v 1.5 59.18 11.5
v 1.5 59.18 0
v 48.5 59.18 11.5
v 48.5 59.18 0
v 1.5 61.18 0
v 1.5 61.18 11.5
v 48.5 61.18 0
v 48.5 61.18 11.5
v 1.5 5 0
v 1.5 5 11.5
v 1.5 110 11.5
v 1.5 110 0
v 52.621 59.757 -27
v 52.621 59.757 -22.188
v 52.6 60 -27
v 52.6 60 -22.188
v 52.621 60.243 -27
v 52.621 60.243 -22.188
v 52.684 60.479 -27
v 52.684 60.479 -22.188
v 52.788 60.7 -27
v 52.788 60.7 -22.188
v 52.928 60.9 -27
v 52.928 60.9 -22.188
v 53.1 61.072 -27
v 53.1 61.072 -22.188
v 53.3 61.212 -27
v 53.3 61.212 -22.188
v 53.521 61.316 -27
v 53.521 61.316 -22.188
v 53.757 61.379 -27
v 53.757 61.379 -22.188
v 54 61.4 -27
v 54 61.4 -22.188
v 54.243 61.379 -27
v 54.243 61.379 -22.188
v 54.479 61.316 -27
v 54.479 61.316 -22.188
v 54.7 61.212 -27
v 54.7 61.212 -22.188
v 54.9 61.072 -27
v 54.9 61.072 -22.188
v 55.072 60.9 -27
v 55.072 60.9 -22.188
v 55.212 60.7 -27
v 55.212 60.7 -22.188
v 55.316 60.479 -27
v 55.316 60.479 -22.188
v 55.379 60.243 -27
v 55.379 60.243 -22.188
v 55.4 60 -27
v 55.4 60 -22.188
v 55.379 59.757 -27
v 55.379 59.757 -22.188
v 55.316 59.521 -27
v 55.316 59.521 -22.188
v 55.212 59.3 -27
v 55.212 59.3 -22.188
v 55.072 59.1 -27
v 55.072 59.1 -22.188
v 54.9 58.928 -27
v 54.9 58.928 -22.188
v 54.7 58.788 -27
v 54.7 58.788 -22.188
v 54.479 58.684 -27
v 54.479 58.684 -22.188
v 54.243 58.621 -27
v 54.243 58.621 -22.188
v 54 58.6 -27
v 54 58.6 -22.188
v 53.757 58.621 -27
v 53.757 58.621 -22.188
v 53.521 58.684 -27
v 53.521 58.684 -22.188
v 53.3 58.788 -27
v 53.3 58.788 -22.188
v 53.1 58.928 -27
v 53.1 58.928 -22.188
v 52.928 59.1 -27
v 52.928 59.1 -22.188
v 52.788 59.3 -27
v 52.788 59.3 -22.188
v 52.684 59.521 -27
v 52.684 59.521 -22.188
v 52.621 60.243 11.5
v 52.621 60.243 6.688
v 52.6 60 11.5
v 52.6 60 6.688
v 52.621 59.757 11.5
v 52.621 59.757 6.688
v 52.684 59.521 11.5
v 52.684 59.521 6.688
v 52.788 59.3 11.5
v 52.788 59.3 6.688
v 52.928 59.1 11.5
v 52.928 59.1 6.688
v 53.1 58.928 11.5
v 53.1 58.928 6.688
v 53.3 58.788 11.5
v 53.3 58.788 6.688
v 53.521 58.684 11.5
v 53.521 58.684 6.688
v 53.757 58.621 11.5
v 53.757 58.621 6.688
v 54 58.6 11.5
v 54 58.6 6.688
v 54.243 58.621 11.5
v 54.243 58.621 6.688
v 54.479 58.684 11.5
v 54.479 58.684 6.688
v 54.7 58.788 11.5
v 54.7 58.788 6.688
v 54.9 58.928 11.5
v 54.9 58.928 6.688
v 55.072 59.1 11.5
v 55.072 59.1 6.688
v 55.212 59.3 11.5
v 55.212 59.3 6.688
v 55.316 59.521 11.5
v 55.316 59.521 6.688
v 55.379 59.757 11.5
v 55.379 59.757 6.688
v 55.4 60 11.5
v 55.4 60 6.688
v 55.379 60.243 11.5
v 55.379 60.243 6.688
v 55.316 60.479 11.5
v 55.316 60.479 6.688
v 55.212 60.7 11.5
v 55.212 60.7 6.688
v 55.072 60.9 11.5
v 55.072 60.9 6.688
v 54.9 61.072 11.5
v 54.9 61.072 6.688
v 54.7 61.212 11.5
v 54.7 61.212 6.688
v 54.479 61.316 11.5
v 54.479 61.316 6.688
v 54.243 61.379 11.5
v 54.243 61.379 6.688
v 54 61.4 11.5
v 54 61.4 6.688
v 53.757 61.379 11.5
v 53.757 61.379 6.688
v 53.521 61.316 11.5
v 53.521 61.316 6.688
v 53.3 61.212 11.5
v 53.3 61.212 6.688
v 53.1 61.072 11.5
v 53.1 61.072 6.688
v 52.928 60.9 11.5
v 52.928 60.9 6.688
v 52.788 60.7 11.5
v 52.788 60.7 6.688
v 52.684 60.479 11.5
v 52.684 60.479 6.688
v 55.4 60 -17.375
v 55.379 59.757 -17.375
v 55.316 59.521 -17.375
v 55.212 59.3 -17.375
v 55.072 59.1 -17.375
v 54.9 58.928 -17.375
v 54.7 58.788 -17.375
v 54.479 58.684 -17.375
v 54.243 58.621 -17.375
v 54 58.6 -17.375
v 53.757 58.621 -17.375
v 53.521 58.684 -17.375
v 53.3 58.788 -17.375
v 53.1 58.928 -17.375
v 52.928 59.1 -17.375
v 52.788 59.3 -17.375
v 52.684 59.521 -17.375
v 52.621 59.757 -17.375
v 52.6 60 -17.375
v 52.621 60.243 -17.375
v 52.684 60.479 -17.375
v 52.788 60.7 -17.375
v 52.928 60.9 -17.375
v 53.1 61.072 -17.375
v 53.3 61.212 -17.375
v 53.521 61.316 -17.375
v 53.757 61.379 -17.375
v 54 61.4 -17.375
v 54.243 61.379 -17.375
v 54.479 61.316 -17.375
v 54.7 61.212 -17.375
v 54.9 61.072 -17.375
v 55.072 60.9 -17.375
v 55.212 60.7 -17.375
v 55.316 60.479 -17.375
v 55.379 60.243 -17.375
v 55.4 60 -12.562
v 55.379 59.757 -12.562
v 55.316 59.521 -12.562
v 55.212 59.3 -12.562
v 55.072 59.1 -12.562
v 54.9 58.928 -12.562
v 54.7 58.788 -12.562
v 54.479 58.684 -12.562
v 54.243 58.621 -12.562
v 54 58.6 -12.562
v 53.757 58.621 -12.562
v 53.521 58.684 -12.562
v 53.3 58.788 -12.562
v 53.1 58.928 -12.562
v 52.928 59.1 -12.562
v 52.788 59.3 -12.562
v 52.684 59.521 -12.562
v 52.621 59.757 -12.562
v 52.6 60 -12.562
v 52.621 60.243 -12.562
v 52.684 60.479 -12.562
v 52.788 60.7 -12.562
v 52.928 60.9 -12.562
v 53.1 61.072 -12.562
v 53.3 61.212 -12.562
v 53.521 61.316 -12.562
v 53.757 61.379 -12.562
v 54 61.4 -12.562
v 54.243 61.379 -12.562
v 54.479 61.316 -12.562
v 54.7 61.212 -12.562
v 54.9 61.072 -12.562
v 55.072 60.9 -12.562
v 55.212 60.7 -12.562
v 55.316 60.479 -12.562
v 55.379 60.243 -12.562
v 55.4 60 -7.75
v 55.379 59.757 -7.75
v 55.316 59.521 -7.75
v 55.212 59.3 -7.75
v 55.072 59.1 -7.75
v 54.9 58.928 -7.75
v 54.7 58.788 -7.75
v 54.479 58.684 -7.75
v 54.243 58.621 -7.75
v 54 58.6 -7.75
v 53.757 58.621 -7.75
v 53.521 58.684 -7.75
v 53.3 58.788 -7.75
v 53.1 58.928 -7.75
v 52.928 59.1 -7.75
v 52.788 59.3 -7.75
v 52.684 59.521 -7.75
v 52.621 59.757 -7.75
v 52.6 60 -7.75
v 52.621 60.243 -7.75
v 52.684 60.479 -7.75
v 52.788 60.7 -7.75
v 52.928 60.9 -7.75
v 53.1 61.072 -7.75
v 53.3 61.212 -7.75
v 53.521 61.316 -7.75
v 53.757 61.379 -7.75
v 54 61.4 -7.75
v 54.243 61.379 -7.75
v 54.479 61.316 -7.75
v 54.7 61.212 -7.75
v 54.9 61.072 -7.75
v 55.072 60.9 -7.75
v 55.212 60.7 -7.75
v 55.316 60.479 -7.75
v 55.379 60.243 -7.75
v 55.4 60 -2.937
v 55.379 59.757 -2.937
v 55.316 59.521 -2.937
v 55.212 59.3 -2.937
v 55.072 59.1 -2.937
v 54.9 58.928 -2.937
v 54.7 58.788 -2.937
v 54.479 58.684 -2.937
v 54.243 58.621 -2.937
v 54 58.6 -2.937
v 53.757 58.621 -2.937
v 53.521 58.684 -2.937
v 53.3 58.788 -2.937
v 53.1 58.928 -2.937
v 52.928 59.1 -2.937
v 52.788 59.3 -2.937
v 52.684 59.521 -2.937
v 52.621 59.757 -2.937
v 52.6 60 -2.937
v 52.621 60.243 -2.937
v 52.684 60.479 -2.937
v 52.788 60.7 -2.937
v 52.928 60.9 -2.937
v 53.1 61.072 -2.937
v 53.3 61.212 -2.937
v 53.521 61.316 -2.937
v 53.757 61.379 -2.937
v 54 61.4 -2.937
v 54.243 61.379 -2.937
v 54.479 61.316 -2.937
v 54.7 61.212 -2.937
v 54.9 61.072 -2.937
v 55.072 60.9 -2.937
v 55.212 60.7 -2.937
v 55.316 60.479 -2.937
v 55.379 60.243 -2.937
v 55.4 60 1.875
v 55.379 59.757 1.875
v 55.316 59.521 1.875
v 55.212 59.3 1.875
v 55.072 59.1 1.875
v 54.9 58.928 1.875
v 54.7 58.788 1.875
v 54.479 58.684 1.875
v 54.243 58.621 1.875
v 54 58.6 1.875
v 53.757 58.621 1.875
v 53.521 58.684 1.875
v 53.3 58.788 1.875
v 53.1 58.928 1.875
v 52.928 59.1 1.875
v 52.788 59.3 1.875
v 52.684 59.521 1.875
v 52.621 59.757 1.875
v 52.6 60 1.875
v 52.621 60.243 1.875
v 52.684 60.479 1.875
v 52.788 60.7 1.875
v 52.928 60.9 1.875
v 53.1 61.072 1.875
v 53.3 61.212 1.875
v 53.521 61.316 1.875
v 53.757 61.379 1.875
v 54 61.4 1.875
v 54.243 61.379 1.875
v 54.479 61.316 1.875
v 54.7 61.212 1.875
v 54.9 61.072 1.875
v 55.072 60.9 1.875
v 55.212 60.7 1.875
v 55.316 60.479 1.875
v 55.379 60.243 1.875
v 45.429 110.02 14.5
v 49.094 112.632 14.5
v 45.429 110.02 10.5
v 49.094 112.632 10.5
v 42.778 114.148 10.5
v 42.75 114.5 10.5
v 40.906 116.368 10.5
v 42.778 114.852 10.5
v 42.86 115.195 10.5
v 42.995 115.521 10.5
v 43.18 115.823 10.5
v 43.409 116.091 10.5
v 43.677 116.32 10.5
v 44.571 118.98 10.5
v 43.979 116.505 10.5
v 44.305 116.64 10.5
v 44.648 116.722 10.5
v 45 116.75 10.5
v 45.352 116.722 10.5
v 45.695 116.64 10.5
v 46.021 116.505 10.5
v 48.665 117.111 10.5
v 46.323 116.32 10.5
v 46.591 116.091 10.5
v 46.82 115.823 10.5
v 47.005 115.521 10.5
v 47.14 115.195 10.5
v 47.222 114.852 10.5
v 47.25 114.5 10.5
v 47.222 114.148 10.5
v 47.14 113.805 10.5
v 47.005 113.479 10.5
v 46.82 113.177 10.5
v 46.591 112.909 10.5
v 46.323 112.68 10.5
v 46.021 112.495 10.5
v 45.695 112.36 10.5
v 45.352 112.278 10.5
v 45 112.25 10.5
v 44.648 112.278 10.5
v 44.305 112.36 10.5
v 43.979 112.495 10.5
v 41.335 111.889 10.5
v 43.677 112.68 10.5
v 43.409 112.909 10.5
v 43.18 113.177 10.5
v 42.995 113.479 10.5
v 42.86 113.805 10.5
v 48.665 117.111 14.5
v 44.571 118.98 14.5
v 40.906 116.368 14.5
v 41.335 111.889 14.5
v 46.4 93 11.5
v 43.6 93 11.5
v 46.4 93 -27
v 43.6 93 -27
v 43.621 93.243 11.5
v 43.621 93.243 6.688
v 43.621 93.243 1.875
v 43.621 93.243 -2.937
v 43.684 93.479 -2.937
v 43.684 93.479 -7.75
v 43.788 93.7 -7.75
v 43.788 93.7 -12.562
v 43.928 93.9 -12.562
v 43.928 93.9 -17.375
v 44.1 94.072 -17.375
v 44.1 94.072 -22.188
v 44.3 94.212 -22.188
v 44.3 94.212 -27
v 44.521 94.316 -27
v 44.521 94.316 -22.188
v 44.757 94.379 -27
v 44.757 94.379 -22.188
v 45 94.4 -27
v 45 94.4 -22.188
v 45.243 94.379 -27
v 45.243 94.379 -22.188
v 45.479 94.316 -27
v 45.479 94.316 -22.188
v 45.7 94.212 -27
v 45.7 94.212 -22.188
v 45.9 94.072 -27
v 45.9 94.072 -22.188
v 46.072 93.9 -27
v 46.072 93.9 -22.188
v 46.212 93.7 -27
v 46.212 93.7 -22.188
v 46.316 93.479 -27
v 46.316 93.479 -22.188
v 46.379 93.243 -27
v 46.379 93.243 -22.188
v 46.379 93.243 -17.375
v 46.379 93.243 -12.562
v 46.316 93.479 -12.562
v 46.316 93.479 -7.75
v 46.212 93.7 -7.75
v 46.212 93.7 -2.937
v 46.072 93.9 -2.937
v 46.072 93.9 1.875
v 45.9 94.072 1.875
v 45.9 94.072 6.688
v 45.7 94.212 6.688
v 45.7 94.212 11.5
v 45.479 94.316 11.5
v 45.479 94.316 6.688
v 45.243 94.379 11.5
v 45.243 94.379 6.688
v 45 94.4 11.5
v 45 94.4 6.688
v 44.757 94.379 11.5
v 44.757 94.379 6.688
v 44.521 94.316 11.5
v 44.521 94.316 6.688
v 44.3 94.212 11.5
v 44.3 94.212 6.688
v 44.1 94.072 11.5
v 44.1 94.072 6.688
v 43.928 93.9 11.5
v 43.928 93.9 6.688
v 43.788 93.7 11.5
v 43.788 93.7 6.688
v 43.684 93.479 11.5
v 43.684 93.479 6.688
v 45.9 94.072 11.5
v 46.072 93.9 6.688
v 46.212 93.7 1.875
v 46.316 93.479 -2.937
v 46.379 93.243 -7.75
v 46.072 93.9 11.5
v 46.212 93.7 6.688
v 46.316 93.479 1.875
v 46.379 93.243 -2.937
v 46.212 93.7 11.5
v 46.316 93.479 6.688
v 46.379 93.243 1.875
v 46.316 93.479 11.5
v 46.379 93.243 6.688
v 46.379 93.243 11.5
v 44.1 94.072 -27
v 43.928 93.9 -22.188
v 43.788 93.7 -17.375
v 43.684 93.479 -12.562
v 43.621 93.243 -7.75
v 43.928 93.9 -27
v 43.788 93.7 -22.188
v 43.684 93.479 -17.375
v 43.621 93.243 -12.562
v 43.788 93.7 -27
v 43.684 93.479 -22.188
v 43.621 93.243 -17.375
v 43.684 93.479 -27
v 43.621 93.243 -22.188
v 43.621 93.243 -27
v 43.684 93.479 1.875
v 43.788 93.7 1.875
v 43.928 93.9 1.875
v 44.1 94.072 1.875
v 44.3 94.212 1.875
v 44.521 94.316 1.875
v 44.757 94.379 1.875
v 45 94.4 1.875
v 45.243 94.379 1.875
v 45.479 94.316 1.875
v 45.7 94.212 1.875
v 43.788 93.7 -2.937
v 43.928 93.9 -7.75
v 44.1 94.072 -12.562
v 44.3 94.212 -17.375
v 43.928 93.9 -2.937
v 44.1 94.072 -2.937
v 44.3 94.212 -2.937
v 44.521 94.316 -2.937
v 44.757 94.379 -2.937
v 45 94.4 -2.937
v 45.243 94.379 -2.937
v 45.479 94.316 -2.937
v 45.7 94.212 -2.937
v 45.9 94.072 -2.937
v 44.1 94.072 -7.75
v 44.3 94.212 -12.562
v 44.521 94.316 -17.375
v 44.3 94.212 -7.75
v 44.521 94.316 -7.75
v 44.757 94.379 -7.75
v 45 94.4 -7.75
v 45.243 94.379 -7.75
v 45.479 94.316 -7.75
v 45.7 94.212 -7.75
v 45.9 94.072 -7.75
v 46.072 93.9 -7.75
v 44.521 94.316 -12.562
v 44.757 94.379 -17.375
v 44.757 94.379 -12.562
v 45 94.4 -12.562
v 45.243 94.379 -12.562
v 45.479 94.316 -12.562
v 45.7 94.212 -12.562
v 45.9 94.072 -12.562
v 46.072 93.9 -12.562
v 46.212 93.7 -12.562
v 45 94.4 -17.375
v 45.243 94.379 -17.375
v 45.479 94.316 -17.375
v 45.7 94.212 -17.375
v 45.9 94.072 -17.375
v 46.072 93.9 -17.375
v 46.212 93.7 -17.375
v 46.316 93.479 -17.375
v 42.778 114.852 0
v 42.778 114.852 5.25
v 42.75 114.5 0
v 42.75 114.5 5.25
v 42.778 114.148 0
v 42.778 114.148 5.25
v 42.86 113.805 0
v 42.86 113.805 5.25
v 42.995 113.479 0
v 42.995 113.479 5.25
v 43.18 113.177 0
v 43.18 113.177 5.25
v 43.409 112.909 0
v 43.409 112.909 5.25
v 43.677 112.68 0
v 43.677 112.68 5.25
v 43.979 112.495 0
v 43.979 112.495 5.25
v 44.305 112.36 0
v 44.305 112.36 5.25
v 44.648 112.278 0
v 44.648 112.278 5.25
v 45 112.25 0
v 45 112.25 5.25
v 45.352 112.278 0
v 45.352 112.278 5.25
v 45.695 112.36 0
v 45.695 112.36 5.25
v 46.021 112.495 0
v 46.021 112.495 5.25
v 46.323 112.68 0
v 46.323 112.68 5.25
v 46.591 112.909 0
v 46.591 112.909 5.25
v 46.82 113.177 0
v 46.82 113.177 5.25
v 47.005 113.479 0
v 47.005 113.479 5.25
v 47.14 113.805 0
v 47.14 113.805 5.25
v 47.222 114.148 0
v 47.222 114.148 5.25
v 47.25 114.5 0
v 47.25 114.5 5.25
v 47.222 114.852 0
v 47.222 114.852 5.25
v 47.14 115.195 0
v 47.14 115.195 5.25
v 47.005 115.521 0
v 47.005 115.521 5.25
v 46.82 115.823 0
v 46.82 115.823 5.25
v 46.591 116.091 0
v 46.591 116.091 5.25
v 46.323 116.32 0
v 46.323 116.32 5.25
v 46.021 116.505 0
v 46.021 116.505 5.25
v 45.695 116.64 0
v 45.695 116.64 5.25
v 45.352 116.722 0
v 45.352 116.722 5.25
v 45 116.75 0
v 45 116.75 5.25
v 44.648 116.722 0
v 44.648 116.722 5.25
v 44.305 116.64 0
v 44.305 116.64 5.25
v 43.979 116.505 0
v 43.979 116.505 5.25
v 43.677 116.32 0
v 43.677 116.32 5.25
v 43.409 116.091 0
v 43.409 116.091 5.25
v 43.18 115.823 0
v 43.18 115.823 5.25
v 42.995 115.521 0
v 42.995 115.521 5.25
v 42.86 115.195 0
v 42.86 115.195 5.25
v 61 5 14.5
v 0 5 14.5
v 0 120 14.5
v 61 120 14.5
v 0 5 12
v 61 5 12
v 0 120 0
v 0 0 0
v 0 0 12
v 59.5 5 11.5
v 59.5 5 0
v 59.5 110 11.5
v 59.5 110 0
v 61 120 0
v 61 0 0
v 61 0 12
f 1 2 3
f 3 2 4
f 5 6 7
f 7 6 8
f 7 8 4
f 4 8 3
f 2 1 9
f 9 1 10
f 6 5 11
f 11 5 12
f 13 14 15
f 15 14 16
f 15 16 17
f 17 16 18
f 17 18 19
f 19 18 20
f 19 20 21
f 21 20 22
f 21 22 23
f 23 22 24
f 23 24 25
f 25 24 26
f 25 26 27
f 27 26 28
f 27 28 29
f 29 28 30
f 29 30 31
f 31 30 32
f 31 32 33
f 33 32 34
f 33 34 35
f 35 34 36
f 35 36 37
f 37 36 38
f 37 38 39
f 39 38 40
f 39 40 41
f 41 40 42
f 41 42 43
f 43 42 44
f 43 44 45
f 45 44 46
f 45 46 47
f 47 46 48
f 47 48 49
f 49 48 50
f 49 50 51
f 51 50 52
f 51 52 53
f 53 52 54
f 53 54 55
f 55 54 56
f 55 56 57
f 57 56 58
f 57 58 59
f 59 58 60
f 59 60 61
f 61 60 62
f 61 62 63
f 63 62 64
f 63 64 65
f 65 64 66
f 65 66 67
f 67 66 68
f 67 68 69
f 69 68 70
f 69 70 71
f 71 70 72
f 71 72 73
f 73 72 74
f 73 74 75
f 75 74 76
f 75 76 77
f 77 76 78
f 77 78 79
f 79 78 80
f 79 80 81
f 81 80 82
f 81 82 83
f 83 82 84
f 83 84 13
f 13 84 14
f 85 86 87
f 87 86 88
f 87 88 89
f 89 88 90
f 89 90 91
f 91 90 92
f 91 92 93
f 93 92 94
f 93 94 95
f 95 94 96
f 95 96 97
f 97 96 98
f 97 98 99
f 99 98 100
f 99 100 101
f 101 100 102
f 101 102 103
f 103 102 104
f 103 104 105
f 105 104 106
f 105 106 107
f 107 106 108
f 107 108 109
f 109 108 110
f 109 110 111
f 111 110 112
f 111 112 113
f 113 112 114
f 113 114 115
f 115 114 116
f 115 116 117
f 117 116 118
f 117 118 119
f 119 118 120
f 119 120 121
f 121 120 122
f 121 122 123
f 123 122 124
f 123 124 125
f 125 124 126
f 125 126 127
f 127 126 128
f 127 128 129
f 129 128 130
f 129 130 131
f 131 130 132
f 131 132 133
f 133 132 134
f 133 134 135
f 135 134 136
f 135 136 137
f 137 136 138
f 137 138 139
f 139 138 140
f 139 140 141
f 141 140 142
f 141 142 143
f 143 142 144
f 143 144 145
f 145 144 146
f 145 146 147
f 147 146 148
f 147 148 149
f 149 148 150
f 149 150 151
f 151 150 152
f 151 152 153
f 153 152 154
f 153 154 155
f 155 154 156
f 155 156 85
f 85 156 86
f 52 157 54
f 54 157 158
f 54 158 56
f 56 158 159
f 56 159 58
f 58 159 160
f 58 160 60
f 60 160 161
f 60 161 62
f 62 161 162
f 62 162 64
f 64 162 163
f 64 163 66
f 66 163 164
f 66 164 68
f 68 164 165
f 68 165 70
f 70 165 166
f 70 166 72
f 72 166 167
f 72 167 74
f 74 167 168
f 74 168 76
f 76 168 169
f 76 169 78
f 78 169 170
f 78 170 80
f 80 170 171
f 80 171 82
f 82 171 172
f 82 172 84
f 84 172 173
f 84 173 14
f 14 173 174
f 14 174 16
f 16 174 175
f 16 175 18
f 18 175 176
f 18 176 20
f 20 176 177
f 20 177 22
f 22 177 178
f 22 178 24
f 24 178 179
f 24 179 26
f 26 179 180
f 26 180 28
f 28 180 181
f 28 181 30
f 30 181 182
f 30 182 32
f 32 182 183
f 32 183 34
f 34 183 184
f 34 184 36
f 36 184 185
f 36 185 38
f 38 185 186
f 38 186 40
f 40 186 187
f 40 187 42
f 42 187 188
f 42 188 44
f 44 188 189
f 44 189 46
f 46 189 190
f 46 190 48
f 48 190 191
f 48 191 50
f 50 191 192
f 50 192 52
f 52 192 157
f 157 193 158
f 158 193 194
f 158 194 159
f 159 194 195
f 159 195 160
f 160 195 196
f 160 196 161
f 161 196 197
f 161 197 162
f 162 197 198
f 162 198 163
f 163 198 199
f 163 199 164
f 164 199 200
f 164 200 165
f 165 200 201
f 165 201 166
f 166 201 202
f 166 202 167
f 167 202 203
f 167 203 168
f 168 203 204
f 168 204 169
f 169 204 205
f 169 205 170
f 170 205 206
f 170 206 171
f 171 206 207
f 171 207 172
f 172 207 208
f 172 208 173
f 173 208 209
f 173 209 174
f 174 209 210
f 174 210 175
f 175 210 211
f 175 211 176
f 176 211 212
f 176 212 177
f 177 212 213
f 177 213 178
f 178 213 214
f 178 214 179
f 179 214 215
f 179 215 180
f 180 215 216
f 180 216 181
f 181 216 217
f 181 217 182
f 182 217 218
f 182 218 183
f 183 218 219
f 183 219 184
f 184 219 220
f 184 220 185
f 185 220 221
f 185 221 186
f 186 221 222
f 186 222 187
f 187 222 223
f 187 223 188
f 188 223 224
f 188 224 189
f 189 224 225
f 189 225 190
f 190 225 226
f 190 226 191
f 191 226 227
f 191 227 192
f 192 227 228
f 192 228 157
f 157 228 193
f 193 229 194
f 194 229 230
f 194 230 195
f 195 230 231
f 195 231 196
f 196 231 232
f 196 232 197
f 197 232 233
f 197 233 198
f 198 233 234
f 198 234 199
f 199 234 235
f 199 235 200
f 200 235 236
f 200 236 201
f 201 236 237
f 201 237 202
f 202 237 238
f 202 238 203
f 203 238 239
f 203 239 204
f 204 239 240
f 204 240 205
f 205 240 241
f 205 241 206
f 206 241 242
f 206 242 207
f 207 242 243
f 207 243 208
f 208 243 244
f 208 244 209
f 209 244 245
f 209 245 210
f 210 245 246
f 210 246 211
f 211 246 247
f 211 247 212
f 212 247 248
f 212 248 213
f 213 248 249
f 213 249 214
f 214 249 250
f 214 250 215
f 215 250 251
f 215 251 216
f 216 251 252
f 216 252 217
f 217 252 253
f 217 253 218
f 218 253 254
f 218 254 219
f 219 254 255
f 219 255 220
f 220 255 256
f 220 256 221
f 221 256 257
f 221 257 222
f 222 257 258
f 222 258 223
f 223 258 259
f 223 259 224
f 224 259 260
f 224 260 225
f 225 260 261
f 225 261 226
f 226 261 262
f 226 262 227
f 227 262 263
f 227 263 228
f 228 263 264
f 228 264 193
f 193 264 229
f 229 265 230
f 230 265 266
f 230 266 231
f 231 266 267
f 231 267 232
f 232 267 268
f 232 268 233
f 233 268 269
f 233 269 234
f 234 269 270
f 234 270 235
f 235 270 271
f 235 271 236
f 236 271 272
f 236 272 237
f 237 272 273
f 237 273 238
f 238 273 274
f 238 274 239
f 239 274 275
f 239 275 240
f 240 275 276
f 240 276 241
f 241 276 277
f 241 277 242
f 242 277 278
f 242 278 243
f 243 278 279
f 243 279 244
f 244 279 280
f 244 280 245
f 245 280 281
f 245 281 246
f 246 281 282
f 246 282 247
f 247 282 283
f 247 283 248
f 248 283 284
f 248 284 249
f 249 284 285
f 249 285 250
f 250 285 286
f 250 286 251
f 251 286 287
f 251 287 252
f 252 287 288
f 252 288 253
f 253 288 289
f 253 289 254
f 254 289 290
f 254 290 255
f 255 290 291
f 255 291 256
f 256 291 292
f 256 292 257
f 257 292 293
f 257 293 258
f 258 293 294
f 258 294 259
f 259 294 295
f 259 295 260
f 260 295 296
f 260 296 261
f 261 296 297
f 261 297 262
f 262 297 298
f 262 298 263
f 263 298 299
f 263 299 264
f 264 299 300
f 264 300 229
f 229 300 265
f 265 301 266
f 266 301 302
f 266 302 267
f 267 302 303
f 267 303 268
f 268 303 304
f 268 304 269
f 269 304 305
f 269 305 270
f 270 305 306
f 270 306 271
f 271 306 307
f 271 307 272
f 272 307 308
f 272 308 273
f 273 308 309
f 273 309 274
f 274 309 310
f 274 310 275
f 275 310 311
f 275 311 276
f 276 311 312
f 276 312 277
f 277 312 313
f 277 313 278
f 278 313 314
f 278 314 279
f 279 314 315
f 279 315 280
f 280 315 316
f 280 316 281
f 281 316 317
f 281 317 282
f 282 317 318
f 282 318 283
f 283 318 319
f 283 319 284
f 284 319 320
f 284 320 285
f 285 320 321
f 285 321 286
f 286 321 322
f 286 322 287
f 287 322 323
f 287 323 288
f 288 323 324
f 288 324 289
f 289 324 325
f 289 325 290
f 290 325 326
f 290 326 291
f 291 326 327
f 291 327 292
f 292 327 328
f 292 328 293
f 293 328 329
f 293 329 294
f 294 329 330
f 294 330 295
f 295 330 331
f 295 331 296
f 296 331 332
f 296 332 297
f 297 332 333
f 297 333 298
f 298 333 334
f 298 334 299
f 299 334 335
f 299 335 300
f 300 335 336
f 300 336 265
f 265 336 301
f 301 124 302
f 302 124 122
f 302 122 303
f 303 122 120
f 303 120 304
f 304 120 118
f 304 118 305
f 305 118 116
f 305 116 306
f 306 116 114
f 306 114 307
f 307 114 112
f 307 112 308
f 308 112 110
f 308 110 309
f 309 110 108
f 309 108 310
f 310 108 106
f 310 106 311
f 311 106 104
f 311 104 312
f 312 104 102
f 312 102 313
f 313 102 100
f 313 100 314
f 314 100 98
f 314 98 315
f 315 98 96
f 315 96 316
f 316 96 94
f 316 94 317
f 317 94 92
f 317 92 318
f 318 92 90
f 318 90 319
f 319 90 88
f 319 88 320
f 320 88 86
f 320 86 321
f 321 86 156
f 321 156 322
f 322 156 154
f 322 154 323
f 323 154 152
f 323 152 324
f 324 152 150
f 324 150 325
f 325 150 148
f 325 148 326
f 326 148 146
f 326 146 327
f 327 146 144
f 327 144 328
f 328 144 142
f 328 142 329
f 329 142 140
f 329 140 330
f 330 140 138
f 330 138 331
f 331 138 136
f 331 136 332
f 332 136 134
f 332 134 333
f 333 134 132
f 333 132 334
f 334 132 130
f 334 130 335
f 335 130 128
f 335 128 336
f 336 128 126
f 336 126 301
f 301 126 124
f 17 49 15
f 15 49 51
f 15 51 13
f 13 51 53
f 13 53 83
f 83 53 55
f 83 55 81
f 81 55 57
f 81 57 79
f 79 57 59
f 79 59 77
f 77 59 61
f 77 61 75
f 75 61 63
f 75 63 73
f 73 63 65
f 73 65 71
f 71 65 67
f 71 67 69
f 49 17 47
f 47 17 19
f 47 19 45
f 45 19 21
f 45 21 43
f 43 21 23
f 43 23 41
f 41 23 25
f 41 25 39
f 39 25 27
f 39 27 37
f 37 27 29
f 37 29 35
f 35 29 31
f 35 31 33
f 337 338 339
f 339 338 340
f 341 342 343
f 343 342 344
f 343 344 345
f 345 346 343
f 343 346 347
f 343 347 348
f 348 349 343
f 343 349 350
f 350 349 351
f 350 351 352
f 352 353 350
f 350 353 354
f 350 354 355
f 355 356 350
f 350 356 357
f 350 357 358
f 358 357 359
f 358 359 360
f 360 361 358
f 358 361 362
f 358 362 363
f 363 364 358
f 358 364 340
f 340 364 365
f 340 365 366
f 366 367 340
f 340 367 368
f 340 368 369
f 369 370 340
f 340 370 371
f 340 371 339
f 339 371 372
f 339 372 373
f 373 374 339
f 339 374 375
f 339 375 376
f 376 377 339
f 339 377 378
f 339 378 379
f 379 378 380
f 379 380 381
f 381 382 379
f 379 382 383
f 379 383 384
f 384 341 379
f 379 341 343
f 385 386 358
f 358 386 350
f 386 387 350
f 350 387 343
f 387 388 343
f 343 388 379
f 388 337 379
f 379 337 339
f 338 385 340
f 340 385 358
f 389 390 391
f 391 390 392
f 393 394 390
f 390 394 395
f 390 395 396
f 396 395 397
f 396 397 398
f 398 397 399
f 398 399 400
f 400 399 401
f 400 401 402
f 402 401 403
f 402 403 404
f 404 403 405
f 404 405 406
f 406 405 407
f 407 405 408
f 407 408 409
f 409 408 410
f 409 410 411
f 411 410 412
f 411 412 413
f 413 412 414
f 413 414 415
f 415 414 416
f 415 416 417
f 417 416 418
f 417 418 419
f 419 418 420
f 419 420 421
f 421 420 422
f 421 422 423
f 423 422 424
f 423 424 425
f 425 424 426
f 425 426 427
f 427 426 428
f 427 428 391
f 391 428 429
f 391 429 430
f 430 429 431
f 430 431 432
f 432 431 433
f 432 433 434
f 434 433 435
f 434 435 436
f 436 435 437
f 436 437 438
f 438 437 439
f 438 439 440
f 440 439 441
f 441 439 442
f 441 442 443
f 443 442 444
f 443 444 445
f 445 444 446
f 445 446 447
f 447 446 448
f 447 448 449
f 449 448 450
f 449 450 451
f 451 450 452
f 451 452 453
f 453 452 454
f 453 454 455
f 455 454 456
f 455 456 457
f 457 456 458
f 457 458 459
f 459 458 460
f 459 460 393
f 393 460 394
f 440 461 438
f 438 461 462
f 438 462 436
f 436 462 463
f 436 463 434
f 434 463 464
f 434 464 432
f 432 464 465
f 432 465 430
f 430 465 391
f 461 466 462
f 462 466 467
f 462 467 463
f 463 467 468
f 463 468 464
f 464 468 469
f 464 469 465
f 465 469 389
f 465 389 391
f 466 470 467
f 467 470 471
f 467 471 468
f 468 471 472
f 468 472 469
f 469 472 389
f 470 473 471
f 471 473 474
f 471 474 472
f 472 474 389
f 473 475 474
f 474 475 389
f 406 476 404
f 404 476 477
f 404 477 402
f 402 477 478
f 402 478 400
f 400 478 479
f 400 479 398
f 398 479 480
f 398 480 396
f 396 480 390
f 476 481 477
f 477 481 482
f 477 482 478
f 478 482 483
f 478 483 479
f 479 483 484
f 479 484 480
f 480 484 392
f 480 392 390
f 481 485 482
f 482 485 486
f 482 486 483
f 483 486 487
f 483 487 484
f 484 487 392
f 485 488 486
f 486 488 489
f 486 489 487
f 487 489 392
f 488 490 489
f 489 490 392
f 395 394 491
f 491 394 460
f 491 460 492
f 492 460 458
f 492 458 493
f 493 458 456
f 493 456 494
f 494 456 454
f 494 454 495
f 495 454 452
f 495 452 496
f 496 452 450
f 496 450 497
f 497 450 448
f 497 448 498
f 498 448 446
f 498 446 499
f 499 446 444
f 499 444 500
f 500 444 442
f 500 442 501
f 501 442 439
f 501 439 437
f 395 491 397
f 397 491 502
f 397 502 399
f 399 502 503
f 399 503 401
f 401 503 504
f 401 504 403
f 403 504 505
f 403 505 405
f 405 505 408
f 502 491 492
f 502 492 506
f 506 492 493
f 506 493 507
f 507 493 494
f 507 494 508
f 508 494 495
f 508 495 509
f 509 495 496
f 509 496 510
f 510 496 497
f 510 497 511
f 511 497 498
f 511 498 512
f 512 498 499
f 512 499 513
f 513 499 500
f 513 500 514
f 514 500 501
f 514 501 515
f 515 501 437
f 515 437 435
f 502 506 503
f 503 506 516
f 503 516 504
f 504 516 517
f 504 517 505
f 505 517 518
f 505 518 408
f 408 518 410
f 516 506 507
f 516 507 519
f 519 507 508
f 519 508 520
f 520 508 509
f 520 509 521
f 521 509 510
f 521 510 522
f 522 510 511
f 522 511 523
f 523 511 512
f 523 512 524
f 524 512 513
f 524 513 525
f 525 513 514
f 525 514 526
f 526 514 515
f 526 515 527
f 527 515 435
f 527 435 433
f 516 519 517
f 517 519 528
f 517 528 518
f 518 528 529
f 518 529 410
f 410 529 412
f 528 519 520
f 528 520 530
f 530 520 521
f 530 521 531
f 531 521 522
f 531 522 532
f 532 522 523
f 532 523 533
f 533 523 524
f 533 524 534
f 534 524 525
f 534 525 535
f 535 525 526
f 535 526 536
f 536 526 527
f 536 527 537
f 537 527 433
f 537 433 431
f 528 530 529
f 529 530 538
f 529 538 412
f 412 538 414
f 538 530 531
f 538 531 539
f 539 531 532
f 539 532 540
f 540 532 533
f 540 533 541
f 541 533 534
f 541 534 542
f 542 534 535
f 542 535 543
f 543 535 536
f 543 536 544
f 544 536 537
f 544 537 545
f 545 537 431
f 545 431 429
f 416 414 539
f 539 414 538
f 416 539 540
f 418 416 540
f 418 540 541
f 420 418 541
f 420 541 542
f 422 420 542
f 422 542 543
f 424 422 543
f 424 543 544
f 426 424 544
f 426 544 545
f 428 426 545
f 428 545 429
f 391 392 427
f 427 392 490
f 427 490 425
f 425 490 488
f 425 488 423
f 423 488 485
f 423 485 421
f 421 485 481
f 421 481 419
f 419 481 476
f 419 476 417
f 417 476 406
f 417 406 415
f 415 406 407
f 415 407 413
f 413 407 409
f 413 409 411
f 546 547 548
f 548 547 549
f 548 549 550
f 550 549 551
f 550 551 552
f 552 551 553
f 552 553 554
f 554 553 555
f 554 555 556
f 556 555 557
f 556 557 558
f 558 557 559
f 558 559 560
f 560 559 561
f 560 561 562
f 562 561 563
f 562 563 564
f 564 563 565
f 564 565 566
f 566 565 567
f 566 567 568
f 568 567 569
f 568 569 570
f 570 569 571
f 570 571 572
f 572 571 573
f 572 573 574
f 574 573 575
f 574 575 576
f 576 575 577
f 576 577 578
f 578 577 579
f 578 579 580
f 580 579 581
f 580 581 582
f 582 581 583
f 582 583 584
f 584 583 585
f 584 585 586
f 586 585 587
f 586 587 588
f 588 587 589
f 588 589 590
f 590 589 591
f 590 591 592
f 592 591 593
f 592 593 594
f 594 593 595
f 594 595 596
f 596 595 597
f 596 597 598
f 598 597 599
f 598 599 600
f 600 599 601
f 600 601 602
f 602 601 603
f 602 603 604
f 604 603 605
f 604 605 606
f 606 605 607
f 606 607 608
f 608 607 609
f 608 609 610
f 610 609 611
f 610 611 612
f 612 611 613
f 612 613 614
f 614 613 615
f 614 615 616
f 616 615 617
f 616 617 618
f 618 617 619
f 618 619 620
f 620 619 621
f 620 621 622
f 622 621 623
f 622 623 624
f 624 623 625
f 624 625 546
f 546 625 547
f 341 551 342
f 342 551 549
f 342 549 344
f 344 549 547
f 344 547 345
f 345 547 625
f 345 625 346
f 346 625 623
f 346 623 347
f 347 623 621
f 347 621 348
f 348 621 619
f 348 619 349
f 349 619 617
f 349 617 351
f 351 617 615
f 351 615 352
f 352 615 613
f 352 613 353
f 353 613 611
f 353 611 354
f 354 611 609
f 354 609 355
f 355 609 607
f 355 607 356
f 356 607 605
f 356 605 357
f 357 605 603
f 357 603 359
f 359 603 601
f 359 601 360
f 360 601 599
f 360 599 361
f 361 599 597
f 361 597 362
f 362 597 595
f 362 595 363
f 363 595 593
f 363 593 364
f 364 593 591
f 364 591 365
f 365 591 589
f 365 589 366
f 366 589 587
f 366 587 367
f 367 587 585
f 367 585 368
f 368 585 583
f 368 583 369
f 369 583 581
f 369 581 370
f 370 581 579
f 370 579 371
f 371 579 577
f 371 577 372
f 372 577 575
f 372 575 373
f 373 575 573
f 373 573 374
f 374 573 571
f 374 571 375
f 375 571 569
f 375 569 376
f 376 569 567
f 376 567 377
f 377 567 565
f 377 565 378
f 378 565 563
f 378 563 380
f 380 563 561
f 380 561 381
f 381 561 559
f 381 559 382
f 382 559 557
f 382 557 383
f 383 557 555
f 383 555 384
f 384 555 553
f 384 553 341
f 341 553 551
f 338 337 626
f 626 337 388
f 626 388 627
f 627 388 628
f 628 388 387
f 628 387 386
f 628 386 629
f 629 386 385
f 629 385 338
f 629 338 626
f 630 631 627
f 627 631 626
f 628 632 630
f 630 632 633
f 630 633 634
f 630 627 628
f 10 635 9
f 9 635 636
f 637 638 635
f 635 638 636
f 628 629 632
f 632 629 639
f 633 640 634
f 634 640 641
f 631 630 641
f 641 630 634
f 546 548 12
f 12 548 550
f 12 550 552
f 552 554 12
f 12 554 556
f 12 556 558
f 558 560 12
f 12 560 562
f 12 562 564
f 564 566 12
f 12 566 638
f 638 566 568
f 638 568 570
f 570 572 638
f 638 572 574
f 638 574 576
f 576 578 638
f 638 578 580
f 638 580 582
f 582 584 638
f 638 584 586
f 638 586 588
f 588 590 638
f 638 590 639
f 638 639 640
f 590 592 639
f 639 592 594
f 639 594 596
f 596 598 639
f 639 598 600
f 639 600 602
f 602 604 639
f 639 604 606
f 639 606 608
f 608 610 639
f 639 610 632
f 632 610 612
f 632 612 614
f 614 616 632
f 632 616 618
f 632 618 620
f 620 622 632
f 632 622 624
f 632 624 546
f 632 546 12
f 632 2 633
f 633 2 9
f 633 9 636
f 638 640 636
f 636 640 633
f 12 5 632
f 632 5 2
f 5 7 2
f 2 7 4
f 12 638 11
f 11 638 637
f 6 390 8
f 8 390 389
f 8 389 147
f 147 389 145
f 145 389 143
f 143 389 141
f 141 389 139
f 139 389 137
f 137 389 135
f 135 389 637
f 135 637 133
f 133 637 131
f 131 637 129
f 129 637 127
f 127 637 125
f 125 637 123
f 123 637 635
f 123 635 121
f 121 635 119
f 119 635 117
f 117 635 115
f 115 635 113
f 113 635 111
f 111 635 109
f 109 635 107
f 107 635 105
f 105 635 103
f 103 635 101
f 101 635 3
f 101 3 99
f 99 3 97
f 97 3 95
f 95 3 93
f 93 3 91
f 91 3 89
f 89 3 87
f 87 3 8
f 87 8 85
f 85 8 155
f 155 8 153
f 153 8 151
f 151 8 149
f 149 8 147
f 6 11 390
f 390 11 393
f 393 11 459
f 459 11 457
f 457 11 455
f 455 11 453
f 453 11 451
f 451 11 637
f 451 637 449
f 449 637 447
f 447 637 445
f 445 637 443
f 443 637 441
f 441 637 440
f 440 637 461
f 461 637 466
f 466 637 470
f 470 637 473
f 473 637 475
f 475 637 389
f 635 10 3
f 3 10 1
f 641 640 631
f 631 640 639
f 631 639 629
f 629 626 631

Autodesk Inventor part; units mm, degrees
ref_plane "YZ Plane" through (0, 0, 0) normal (1, 0, 0) x (0, 1, 0)
ref_plane "XZ Plane" through (0, 0, 0) normal (0, 1, 0) x (-1, 0, 0)
ref_plane "XY Plane" through (0, 0, 0) normal (0, 0, 1) x (1, 0, 0)
sketch "Sketch1" plane through (0, 0, 0) normal (0, 0, 1) x (1, 0, 0)
  line L0 (0, 0) -> (0, 120)
  line L1 (0, 120) -> (61, 120)
  line L2 (61, 120) -> (61, 0)
  line L3 (61, 0) -> (0, 0)
  line L4 (0, 5) -> (61, 5)
  line L5 (0, 110) -> (61, 110)
  dimension "d0" = 120
  dimension "d1" = 61
  dimension "d14" = 10
  dimension "d15" = 5
extrude "Extrusion1" add sketch "Sketch1" along normal blind 14.5 contours L0 L5 L2 L4 | L0 L1 L2 L5
extrude "Extrusion2" cut sketch "Sketch1" along normal blind 11.5 contours L0 L5 L2 L4
extrude "Extrusion3" add sketch "Sketch1" along normal blind 12 contours L0 L4 L2 L3
sketch "Sketch2" plane through (61, 5, 14.5) normal (1, 0, 0) x (0, 0, -1)
  line L0 (14.5, 115) -> (0, 115) projected
  line L1 (14.5, 115) -> (0, 115)
  line L2 (0, 0) -> (0, 115) projected
  line L3 (0, 115) -> (0, 0)
  line L4 (0, 0) -> (14.5, 0)
  line L5 (14.5, 0) -> (14.5, 115)
  point P0 (14.5, -5)
extrude "Extrusion4" add sketch "Sketch2" against normal blind 1.5
sketch "Sketch3" plane through (0, 5, 14.5) normal (-1, 0, 0) x (0, 0, 1)
  line L0 (-14.5, 115) -> (-14.5, 105) projected
  line L1 (-14.5, 115) -> (0, 115) projected
  line L2 (-14.5, 115) -> (0, 115)
  line L3 (0, 0) -> (0, 115) projected
  line L4 (0, 115) -> (0, 0)
  line L5 (0, 0) -> (-14.5, 0)
  line L6 (-14.5, 0) -> (-14.5, 115)
  point P0 (-14.5, -5)
extrude "Extrusion5" add sketch "Sketch3" against normal blind 1.5
sketch "Sketch4" plane through (0, 0, 14.5) normal (0, 0, 1) x (1, 0, 0)
  circle A0 centre (45, 114.5) radius 2.25
  line L0 (61, 120) -> (0, 120) projected
  line L1 (45, 116.75) -> (46.9486, 115.625)
  line L2 (46.9486, 115.625) -> (46.9486, 113.375)
  line L3 (46.9486, 113.375) -> (45, 112.25)
  line L4 (45, 112.25) -> (43.0514, 113.375)
  line L5 (43.0514, 113.375) -> (43.0514, 115.625)
  line L6 (43.0514, 115.625) -> (45, 116.75)
  line L7 (0, 120) -> (0, 5) projected
  point P0 (0, 0)
  point P1 (30.5, 120)
  dimension "d23" = 4.5
  dimension "d60" = 45
hole "Hole1" at (45, 114.5, 14.5) direction (0, 0, -1) diameter 4.5 end through all counterbore diameter 9 counterbore depth 4
sketch "Sketch8" plane through (0, 0, 11.5) normal (0, 0, -1) x (-1, 0, 0)
  line L0 (-59.5, 110) -> (-1.5, 110) projected
  line L1 (-45, 110) -> (-45, 93)
  circle A0 centre (-45, 93) radius 1.4
  line L2 (-46.4, 93) -> (-43.6, 93)
  circle A1 centre (-36, 60) radius 1.4
  circle A2 centre (-54, 60) radius 1.4
  line L3 (-61, 0) -> (-61, 120) projected
  line L4 (-59.5, 110) -> (-59.5, 5) projected
  point P0 (0, 0)
  dimension "d45" = 17
  dimension "d46" = 2.8
  dimension "d56" = 2.8
  dimension "d57" = 2.8
  dimension "d66" = 33
  dimension "d67" = 33
  dimension "d68" = 9
  dimension "d69" = 18
extrude "Extrusion8" add sketch "Sketch8" along normal blind 38.5 contours A0 L2 L1 | L1 L2 A0
sketch "Sketch9" plane through (0, 0, 14.5) normal (0, 0, 1) x (1, 0, 0)
  circle A0 centre (45, 114.5) radius 2.25 projected
  circle A1 centre (45, 114.5) radius 4.5 projected
  line L0 (48.665, 117.1111) -> (49.0938, 112.6316)
  line L1 (49.0938, 112.6316) -> (45.4288, 110.0205)
  line L2 (45.4288, 110.0205) -> (41.335, 111.8889)
  line L3 (41.335, 111.8889) -> (40.9062, 116.3684)
  line L4 (40.9062, 116.3684) -> (44.5712, 118.9795)
  line L5 (44.5712, 118.9795) -> (48.665, 117.1111)
  point P0 (0, 0)
  point P1 (45, 110)
  point P2 (44.5712, 118.9795)
  point P3 (44.5712, 118.9795)
  point P4 (40.9062, 116.3684)
  point P5 (40.9062, 116.3684)
  point P6 (41.335, 111.8889)
  point P7 (41.335, 111.8889)
  point P8 (49.0938, 112.6316)
  point P9 (45.4288, 110.0205)
  point P10 (49.0938, 112.6316)
  point P11 (45.4288, 110.0205)
  dimension "d53" = 8
extrude "Extrusion9" add sketch "Sketch9" against normal blind 4 contours A1 L0 | L5 A1 | L4 A1 | A1 L2 | L3 A1
extrude "Extrusion10" add sketch "Sketch9" against normal blind 4 contours A1 L1
sketch "Sketch10" plane through (45, 93, -27) normal (0, 0, -1) x (1, 0, 0)
  arc A0 (-1.4, 0) -> (1.4, 0) centre (0, 0) ccw projected
  line L0 (-1.4, 0) -> (1.4, 0)
  point P0 (-45, 93)
extrude "Extrusion11" add sketch "Sketch8" along normal blind 38.5 contours A2
sketch "Sketch11" plane through (1.5, 5, 14.5) normal (1, 0, 0) x (0, 0, -1)
  line L0 (3, 105) -> (14.5, 105) projected
  line L1 (3, 105) -> (3, 56.18)
  line L2 (3, 0) -> (3, 105) projected
  line L3 (3, 56.18) -> (14.5, 56.18)
  line L4 (14.5, 115) -> (14.5, -5) projected
  line L5 (14.5, 56.18) -> (14.5, 54.18)
  line L6 (14.5, 54.18) -> (3, 54.18)
  line L7 (3, 54.18) -> (3, 56.18)
  point P0 (3, 54.18)
  dimension "d70" = 48.82
  dimension "d71" = 2
extrude "Extrusion12" add sketch "Sketch11" along normal blind 47 contours L3 L4 L6 L2
properties part number "Cover of DC Housing_3DPrint"
